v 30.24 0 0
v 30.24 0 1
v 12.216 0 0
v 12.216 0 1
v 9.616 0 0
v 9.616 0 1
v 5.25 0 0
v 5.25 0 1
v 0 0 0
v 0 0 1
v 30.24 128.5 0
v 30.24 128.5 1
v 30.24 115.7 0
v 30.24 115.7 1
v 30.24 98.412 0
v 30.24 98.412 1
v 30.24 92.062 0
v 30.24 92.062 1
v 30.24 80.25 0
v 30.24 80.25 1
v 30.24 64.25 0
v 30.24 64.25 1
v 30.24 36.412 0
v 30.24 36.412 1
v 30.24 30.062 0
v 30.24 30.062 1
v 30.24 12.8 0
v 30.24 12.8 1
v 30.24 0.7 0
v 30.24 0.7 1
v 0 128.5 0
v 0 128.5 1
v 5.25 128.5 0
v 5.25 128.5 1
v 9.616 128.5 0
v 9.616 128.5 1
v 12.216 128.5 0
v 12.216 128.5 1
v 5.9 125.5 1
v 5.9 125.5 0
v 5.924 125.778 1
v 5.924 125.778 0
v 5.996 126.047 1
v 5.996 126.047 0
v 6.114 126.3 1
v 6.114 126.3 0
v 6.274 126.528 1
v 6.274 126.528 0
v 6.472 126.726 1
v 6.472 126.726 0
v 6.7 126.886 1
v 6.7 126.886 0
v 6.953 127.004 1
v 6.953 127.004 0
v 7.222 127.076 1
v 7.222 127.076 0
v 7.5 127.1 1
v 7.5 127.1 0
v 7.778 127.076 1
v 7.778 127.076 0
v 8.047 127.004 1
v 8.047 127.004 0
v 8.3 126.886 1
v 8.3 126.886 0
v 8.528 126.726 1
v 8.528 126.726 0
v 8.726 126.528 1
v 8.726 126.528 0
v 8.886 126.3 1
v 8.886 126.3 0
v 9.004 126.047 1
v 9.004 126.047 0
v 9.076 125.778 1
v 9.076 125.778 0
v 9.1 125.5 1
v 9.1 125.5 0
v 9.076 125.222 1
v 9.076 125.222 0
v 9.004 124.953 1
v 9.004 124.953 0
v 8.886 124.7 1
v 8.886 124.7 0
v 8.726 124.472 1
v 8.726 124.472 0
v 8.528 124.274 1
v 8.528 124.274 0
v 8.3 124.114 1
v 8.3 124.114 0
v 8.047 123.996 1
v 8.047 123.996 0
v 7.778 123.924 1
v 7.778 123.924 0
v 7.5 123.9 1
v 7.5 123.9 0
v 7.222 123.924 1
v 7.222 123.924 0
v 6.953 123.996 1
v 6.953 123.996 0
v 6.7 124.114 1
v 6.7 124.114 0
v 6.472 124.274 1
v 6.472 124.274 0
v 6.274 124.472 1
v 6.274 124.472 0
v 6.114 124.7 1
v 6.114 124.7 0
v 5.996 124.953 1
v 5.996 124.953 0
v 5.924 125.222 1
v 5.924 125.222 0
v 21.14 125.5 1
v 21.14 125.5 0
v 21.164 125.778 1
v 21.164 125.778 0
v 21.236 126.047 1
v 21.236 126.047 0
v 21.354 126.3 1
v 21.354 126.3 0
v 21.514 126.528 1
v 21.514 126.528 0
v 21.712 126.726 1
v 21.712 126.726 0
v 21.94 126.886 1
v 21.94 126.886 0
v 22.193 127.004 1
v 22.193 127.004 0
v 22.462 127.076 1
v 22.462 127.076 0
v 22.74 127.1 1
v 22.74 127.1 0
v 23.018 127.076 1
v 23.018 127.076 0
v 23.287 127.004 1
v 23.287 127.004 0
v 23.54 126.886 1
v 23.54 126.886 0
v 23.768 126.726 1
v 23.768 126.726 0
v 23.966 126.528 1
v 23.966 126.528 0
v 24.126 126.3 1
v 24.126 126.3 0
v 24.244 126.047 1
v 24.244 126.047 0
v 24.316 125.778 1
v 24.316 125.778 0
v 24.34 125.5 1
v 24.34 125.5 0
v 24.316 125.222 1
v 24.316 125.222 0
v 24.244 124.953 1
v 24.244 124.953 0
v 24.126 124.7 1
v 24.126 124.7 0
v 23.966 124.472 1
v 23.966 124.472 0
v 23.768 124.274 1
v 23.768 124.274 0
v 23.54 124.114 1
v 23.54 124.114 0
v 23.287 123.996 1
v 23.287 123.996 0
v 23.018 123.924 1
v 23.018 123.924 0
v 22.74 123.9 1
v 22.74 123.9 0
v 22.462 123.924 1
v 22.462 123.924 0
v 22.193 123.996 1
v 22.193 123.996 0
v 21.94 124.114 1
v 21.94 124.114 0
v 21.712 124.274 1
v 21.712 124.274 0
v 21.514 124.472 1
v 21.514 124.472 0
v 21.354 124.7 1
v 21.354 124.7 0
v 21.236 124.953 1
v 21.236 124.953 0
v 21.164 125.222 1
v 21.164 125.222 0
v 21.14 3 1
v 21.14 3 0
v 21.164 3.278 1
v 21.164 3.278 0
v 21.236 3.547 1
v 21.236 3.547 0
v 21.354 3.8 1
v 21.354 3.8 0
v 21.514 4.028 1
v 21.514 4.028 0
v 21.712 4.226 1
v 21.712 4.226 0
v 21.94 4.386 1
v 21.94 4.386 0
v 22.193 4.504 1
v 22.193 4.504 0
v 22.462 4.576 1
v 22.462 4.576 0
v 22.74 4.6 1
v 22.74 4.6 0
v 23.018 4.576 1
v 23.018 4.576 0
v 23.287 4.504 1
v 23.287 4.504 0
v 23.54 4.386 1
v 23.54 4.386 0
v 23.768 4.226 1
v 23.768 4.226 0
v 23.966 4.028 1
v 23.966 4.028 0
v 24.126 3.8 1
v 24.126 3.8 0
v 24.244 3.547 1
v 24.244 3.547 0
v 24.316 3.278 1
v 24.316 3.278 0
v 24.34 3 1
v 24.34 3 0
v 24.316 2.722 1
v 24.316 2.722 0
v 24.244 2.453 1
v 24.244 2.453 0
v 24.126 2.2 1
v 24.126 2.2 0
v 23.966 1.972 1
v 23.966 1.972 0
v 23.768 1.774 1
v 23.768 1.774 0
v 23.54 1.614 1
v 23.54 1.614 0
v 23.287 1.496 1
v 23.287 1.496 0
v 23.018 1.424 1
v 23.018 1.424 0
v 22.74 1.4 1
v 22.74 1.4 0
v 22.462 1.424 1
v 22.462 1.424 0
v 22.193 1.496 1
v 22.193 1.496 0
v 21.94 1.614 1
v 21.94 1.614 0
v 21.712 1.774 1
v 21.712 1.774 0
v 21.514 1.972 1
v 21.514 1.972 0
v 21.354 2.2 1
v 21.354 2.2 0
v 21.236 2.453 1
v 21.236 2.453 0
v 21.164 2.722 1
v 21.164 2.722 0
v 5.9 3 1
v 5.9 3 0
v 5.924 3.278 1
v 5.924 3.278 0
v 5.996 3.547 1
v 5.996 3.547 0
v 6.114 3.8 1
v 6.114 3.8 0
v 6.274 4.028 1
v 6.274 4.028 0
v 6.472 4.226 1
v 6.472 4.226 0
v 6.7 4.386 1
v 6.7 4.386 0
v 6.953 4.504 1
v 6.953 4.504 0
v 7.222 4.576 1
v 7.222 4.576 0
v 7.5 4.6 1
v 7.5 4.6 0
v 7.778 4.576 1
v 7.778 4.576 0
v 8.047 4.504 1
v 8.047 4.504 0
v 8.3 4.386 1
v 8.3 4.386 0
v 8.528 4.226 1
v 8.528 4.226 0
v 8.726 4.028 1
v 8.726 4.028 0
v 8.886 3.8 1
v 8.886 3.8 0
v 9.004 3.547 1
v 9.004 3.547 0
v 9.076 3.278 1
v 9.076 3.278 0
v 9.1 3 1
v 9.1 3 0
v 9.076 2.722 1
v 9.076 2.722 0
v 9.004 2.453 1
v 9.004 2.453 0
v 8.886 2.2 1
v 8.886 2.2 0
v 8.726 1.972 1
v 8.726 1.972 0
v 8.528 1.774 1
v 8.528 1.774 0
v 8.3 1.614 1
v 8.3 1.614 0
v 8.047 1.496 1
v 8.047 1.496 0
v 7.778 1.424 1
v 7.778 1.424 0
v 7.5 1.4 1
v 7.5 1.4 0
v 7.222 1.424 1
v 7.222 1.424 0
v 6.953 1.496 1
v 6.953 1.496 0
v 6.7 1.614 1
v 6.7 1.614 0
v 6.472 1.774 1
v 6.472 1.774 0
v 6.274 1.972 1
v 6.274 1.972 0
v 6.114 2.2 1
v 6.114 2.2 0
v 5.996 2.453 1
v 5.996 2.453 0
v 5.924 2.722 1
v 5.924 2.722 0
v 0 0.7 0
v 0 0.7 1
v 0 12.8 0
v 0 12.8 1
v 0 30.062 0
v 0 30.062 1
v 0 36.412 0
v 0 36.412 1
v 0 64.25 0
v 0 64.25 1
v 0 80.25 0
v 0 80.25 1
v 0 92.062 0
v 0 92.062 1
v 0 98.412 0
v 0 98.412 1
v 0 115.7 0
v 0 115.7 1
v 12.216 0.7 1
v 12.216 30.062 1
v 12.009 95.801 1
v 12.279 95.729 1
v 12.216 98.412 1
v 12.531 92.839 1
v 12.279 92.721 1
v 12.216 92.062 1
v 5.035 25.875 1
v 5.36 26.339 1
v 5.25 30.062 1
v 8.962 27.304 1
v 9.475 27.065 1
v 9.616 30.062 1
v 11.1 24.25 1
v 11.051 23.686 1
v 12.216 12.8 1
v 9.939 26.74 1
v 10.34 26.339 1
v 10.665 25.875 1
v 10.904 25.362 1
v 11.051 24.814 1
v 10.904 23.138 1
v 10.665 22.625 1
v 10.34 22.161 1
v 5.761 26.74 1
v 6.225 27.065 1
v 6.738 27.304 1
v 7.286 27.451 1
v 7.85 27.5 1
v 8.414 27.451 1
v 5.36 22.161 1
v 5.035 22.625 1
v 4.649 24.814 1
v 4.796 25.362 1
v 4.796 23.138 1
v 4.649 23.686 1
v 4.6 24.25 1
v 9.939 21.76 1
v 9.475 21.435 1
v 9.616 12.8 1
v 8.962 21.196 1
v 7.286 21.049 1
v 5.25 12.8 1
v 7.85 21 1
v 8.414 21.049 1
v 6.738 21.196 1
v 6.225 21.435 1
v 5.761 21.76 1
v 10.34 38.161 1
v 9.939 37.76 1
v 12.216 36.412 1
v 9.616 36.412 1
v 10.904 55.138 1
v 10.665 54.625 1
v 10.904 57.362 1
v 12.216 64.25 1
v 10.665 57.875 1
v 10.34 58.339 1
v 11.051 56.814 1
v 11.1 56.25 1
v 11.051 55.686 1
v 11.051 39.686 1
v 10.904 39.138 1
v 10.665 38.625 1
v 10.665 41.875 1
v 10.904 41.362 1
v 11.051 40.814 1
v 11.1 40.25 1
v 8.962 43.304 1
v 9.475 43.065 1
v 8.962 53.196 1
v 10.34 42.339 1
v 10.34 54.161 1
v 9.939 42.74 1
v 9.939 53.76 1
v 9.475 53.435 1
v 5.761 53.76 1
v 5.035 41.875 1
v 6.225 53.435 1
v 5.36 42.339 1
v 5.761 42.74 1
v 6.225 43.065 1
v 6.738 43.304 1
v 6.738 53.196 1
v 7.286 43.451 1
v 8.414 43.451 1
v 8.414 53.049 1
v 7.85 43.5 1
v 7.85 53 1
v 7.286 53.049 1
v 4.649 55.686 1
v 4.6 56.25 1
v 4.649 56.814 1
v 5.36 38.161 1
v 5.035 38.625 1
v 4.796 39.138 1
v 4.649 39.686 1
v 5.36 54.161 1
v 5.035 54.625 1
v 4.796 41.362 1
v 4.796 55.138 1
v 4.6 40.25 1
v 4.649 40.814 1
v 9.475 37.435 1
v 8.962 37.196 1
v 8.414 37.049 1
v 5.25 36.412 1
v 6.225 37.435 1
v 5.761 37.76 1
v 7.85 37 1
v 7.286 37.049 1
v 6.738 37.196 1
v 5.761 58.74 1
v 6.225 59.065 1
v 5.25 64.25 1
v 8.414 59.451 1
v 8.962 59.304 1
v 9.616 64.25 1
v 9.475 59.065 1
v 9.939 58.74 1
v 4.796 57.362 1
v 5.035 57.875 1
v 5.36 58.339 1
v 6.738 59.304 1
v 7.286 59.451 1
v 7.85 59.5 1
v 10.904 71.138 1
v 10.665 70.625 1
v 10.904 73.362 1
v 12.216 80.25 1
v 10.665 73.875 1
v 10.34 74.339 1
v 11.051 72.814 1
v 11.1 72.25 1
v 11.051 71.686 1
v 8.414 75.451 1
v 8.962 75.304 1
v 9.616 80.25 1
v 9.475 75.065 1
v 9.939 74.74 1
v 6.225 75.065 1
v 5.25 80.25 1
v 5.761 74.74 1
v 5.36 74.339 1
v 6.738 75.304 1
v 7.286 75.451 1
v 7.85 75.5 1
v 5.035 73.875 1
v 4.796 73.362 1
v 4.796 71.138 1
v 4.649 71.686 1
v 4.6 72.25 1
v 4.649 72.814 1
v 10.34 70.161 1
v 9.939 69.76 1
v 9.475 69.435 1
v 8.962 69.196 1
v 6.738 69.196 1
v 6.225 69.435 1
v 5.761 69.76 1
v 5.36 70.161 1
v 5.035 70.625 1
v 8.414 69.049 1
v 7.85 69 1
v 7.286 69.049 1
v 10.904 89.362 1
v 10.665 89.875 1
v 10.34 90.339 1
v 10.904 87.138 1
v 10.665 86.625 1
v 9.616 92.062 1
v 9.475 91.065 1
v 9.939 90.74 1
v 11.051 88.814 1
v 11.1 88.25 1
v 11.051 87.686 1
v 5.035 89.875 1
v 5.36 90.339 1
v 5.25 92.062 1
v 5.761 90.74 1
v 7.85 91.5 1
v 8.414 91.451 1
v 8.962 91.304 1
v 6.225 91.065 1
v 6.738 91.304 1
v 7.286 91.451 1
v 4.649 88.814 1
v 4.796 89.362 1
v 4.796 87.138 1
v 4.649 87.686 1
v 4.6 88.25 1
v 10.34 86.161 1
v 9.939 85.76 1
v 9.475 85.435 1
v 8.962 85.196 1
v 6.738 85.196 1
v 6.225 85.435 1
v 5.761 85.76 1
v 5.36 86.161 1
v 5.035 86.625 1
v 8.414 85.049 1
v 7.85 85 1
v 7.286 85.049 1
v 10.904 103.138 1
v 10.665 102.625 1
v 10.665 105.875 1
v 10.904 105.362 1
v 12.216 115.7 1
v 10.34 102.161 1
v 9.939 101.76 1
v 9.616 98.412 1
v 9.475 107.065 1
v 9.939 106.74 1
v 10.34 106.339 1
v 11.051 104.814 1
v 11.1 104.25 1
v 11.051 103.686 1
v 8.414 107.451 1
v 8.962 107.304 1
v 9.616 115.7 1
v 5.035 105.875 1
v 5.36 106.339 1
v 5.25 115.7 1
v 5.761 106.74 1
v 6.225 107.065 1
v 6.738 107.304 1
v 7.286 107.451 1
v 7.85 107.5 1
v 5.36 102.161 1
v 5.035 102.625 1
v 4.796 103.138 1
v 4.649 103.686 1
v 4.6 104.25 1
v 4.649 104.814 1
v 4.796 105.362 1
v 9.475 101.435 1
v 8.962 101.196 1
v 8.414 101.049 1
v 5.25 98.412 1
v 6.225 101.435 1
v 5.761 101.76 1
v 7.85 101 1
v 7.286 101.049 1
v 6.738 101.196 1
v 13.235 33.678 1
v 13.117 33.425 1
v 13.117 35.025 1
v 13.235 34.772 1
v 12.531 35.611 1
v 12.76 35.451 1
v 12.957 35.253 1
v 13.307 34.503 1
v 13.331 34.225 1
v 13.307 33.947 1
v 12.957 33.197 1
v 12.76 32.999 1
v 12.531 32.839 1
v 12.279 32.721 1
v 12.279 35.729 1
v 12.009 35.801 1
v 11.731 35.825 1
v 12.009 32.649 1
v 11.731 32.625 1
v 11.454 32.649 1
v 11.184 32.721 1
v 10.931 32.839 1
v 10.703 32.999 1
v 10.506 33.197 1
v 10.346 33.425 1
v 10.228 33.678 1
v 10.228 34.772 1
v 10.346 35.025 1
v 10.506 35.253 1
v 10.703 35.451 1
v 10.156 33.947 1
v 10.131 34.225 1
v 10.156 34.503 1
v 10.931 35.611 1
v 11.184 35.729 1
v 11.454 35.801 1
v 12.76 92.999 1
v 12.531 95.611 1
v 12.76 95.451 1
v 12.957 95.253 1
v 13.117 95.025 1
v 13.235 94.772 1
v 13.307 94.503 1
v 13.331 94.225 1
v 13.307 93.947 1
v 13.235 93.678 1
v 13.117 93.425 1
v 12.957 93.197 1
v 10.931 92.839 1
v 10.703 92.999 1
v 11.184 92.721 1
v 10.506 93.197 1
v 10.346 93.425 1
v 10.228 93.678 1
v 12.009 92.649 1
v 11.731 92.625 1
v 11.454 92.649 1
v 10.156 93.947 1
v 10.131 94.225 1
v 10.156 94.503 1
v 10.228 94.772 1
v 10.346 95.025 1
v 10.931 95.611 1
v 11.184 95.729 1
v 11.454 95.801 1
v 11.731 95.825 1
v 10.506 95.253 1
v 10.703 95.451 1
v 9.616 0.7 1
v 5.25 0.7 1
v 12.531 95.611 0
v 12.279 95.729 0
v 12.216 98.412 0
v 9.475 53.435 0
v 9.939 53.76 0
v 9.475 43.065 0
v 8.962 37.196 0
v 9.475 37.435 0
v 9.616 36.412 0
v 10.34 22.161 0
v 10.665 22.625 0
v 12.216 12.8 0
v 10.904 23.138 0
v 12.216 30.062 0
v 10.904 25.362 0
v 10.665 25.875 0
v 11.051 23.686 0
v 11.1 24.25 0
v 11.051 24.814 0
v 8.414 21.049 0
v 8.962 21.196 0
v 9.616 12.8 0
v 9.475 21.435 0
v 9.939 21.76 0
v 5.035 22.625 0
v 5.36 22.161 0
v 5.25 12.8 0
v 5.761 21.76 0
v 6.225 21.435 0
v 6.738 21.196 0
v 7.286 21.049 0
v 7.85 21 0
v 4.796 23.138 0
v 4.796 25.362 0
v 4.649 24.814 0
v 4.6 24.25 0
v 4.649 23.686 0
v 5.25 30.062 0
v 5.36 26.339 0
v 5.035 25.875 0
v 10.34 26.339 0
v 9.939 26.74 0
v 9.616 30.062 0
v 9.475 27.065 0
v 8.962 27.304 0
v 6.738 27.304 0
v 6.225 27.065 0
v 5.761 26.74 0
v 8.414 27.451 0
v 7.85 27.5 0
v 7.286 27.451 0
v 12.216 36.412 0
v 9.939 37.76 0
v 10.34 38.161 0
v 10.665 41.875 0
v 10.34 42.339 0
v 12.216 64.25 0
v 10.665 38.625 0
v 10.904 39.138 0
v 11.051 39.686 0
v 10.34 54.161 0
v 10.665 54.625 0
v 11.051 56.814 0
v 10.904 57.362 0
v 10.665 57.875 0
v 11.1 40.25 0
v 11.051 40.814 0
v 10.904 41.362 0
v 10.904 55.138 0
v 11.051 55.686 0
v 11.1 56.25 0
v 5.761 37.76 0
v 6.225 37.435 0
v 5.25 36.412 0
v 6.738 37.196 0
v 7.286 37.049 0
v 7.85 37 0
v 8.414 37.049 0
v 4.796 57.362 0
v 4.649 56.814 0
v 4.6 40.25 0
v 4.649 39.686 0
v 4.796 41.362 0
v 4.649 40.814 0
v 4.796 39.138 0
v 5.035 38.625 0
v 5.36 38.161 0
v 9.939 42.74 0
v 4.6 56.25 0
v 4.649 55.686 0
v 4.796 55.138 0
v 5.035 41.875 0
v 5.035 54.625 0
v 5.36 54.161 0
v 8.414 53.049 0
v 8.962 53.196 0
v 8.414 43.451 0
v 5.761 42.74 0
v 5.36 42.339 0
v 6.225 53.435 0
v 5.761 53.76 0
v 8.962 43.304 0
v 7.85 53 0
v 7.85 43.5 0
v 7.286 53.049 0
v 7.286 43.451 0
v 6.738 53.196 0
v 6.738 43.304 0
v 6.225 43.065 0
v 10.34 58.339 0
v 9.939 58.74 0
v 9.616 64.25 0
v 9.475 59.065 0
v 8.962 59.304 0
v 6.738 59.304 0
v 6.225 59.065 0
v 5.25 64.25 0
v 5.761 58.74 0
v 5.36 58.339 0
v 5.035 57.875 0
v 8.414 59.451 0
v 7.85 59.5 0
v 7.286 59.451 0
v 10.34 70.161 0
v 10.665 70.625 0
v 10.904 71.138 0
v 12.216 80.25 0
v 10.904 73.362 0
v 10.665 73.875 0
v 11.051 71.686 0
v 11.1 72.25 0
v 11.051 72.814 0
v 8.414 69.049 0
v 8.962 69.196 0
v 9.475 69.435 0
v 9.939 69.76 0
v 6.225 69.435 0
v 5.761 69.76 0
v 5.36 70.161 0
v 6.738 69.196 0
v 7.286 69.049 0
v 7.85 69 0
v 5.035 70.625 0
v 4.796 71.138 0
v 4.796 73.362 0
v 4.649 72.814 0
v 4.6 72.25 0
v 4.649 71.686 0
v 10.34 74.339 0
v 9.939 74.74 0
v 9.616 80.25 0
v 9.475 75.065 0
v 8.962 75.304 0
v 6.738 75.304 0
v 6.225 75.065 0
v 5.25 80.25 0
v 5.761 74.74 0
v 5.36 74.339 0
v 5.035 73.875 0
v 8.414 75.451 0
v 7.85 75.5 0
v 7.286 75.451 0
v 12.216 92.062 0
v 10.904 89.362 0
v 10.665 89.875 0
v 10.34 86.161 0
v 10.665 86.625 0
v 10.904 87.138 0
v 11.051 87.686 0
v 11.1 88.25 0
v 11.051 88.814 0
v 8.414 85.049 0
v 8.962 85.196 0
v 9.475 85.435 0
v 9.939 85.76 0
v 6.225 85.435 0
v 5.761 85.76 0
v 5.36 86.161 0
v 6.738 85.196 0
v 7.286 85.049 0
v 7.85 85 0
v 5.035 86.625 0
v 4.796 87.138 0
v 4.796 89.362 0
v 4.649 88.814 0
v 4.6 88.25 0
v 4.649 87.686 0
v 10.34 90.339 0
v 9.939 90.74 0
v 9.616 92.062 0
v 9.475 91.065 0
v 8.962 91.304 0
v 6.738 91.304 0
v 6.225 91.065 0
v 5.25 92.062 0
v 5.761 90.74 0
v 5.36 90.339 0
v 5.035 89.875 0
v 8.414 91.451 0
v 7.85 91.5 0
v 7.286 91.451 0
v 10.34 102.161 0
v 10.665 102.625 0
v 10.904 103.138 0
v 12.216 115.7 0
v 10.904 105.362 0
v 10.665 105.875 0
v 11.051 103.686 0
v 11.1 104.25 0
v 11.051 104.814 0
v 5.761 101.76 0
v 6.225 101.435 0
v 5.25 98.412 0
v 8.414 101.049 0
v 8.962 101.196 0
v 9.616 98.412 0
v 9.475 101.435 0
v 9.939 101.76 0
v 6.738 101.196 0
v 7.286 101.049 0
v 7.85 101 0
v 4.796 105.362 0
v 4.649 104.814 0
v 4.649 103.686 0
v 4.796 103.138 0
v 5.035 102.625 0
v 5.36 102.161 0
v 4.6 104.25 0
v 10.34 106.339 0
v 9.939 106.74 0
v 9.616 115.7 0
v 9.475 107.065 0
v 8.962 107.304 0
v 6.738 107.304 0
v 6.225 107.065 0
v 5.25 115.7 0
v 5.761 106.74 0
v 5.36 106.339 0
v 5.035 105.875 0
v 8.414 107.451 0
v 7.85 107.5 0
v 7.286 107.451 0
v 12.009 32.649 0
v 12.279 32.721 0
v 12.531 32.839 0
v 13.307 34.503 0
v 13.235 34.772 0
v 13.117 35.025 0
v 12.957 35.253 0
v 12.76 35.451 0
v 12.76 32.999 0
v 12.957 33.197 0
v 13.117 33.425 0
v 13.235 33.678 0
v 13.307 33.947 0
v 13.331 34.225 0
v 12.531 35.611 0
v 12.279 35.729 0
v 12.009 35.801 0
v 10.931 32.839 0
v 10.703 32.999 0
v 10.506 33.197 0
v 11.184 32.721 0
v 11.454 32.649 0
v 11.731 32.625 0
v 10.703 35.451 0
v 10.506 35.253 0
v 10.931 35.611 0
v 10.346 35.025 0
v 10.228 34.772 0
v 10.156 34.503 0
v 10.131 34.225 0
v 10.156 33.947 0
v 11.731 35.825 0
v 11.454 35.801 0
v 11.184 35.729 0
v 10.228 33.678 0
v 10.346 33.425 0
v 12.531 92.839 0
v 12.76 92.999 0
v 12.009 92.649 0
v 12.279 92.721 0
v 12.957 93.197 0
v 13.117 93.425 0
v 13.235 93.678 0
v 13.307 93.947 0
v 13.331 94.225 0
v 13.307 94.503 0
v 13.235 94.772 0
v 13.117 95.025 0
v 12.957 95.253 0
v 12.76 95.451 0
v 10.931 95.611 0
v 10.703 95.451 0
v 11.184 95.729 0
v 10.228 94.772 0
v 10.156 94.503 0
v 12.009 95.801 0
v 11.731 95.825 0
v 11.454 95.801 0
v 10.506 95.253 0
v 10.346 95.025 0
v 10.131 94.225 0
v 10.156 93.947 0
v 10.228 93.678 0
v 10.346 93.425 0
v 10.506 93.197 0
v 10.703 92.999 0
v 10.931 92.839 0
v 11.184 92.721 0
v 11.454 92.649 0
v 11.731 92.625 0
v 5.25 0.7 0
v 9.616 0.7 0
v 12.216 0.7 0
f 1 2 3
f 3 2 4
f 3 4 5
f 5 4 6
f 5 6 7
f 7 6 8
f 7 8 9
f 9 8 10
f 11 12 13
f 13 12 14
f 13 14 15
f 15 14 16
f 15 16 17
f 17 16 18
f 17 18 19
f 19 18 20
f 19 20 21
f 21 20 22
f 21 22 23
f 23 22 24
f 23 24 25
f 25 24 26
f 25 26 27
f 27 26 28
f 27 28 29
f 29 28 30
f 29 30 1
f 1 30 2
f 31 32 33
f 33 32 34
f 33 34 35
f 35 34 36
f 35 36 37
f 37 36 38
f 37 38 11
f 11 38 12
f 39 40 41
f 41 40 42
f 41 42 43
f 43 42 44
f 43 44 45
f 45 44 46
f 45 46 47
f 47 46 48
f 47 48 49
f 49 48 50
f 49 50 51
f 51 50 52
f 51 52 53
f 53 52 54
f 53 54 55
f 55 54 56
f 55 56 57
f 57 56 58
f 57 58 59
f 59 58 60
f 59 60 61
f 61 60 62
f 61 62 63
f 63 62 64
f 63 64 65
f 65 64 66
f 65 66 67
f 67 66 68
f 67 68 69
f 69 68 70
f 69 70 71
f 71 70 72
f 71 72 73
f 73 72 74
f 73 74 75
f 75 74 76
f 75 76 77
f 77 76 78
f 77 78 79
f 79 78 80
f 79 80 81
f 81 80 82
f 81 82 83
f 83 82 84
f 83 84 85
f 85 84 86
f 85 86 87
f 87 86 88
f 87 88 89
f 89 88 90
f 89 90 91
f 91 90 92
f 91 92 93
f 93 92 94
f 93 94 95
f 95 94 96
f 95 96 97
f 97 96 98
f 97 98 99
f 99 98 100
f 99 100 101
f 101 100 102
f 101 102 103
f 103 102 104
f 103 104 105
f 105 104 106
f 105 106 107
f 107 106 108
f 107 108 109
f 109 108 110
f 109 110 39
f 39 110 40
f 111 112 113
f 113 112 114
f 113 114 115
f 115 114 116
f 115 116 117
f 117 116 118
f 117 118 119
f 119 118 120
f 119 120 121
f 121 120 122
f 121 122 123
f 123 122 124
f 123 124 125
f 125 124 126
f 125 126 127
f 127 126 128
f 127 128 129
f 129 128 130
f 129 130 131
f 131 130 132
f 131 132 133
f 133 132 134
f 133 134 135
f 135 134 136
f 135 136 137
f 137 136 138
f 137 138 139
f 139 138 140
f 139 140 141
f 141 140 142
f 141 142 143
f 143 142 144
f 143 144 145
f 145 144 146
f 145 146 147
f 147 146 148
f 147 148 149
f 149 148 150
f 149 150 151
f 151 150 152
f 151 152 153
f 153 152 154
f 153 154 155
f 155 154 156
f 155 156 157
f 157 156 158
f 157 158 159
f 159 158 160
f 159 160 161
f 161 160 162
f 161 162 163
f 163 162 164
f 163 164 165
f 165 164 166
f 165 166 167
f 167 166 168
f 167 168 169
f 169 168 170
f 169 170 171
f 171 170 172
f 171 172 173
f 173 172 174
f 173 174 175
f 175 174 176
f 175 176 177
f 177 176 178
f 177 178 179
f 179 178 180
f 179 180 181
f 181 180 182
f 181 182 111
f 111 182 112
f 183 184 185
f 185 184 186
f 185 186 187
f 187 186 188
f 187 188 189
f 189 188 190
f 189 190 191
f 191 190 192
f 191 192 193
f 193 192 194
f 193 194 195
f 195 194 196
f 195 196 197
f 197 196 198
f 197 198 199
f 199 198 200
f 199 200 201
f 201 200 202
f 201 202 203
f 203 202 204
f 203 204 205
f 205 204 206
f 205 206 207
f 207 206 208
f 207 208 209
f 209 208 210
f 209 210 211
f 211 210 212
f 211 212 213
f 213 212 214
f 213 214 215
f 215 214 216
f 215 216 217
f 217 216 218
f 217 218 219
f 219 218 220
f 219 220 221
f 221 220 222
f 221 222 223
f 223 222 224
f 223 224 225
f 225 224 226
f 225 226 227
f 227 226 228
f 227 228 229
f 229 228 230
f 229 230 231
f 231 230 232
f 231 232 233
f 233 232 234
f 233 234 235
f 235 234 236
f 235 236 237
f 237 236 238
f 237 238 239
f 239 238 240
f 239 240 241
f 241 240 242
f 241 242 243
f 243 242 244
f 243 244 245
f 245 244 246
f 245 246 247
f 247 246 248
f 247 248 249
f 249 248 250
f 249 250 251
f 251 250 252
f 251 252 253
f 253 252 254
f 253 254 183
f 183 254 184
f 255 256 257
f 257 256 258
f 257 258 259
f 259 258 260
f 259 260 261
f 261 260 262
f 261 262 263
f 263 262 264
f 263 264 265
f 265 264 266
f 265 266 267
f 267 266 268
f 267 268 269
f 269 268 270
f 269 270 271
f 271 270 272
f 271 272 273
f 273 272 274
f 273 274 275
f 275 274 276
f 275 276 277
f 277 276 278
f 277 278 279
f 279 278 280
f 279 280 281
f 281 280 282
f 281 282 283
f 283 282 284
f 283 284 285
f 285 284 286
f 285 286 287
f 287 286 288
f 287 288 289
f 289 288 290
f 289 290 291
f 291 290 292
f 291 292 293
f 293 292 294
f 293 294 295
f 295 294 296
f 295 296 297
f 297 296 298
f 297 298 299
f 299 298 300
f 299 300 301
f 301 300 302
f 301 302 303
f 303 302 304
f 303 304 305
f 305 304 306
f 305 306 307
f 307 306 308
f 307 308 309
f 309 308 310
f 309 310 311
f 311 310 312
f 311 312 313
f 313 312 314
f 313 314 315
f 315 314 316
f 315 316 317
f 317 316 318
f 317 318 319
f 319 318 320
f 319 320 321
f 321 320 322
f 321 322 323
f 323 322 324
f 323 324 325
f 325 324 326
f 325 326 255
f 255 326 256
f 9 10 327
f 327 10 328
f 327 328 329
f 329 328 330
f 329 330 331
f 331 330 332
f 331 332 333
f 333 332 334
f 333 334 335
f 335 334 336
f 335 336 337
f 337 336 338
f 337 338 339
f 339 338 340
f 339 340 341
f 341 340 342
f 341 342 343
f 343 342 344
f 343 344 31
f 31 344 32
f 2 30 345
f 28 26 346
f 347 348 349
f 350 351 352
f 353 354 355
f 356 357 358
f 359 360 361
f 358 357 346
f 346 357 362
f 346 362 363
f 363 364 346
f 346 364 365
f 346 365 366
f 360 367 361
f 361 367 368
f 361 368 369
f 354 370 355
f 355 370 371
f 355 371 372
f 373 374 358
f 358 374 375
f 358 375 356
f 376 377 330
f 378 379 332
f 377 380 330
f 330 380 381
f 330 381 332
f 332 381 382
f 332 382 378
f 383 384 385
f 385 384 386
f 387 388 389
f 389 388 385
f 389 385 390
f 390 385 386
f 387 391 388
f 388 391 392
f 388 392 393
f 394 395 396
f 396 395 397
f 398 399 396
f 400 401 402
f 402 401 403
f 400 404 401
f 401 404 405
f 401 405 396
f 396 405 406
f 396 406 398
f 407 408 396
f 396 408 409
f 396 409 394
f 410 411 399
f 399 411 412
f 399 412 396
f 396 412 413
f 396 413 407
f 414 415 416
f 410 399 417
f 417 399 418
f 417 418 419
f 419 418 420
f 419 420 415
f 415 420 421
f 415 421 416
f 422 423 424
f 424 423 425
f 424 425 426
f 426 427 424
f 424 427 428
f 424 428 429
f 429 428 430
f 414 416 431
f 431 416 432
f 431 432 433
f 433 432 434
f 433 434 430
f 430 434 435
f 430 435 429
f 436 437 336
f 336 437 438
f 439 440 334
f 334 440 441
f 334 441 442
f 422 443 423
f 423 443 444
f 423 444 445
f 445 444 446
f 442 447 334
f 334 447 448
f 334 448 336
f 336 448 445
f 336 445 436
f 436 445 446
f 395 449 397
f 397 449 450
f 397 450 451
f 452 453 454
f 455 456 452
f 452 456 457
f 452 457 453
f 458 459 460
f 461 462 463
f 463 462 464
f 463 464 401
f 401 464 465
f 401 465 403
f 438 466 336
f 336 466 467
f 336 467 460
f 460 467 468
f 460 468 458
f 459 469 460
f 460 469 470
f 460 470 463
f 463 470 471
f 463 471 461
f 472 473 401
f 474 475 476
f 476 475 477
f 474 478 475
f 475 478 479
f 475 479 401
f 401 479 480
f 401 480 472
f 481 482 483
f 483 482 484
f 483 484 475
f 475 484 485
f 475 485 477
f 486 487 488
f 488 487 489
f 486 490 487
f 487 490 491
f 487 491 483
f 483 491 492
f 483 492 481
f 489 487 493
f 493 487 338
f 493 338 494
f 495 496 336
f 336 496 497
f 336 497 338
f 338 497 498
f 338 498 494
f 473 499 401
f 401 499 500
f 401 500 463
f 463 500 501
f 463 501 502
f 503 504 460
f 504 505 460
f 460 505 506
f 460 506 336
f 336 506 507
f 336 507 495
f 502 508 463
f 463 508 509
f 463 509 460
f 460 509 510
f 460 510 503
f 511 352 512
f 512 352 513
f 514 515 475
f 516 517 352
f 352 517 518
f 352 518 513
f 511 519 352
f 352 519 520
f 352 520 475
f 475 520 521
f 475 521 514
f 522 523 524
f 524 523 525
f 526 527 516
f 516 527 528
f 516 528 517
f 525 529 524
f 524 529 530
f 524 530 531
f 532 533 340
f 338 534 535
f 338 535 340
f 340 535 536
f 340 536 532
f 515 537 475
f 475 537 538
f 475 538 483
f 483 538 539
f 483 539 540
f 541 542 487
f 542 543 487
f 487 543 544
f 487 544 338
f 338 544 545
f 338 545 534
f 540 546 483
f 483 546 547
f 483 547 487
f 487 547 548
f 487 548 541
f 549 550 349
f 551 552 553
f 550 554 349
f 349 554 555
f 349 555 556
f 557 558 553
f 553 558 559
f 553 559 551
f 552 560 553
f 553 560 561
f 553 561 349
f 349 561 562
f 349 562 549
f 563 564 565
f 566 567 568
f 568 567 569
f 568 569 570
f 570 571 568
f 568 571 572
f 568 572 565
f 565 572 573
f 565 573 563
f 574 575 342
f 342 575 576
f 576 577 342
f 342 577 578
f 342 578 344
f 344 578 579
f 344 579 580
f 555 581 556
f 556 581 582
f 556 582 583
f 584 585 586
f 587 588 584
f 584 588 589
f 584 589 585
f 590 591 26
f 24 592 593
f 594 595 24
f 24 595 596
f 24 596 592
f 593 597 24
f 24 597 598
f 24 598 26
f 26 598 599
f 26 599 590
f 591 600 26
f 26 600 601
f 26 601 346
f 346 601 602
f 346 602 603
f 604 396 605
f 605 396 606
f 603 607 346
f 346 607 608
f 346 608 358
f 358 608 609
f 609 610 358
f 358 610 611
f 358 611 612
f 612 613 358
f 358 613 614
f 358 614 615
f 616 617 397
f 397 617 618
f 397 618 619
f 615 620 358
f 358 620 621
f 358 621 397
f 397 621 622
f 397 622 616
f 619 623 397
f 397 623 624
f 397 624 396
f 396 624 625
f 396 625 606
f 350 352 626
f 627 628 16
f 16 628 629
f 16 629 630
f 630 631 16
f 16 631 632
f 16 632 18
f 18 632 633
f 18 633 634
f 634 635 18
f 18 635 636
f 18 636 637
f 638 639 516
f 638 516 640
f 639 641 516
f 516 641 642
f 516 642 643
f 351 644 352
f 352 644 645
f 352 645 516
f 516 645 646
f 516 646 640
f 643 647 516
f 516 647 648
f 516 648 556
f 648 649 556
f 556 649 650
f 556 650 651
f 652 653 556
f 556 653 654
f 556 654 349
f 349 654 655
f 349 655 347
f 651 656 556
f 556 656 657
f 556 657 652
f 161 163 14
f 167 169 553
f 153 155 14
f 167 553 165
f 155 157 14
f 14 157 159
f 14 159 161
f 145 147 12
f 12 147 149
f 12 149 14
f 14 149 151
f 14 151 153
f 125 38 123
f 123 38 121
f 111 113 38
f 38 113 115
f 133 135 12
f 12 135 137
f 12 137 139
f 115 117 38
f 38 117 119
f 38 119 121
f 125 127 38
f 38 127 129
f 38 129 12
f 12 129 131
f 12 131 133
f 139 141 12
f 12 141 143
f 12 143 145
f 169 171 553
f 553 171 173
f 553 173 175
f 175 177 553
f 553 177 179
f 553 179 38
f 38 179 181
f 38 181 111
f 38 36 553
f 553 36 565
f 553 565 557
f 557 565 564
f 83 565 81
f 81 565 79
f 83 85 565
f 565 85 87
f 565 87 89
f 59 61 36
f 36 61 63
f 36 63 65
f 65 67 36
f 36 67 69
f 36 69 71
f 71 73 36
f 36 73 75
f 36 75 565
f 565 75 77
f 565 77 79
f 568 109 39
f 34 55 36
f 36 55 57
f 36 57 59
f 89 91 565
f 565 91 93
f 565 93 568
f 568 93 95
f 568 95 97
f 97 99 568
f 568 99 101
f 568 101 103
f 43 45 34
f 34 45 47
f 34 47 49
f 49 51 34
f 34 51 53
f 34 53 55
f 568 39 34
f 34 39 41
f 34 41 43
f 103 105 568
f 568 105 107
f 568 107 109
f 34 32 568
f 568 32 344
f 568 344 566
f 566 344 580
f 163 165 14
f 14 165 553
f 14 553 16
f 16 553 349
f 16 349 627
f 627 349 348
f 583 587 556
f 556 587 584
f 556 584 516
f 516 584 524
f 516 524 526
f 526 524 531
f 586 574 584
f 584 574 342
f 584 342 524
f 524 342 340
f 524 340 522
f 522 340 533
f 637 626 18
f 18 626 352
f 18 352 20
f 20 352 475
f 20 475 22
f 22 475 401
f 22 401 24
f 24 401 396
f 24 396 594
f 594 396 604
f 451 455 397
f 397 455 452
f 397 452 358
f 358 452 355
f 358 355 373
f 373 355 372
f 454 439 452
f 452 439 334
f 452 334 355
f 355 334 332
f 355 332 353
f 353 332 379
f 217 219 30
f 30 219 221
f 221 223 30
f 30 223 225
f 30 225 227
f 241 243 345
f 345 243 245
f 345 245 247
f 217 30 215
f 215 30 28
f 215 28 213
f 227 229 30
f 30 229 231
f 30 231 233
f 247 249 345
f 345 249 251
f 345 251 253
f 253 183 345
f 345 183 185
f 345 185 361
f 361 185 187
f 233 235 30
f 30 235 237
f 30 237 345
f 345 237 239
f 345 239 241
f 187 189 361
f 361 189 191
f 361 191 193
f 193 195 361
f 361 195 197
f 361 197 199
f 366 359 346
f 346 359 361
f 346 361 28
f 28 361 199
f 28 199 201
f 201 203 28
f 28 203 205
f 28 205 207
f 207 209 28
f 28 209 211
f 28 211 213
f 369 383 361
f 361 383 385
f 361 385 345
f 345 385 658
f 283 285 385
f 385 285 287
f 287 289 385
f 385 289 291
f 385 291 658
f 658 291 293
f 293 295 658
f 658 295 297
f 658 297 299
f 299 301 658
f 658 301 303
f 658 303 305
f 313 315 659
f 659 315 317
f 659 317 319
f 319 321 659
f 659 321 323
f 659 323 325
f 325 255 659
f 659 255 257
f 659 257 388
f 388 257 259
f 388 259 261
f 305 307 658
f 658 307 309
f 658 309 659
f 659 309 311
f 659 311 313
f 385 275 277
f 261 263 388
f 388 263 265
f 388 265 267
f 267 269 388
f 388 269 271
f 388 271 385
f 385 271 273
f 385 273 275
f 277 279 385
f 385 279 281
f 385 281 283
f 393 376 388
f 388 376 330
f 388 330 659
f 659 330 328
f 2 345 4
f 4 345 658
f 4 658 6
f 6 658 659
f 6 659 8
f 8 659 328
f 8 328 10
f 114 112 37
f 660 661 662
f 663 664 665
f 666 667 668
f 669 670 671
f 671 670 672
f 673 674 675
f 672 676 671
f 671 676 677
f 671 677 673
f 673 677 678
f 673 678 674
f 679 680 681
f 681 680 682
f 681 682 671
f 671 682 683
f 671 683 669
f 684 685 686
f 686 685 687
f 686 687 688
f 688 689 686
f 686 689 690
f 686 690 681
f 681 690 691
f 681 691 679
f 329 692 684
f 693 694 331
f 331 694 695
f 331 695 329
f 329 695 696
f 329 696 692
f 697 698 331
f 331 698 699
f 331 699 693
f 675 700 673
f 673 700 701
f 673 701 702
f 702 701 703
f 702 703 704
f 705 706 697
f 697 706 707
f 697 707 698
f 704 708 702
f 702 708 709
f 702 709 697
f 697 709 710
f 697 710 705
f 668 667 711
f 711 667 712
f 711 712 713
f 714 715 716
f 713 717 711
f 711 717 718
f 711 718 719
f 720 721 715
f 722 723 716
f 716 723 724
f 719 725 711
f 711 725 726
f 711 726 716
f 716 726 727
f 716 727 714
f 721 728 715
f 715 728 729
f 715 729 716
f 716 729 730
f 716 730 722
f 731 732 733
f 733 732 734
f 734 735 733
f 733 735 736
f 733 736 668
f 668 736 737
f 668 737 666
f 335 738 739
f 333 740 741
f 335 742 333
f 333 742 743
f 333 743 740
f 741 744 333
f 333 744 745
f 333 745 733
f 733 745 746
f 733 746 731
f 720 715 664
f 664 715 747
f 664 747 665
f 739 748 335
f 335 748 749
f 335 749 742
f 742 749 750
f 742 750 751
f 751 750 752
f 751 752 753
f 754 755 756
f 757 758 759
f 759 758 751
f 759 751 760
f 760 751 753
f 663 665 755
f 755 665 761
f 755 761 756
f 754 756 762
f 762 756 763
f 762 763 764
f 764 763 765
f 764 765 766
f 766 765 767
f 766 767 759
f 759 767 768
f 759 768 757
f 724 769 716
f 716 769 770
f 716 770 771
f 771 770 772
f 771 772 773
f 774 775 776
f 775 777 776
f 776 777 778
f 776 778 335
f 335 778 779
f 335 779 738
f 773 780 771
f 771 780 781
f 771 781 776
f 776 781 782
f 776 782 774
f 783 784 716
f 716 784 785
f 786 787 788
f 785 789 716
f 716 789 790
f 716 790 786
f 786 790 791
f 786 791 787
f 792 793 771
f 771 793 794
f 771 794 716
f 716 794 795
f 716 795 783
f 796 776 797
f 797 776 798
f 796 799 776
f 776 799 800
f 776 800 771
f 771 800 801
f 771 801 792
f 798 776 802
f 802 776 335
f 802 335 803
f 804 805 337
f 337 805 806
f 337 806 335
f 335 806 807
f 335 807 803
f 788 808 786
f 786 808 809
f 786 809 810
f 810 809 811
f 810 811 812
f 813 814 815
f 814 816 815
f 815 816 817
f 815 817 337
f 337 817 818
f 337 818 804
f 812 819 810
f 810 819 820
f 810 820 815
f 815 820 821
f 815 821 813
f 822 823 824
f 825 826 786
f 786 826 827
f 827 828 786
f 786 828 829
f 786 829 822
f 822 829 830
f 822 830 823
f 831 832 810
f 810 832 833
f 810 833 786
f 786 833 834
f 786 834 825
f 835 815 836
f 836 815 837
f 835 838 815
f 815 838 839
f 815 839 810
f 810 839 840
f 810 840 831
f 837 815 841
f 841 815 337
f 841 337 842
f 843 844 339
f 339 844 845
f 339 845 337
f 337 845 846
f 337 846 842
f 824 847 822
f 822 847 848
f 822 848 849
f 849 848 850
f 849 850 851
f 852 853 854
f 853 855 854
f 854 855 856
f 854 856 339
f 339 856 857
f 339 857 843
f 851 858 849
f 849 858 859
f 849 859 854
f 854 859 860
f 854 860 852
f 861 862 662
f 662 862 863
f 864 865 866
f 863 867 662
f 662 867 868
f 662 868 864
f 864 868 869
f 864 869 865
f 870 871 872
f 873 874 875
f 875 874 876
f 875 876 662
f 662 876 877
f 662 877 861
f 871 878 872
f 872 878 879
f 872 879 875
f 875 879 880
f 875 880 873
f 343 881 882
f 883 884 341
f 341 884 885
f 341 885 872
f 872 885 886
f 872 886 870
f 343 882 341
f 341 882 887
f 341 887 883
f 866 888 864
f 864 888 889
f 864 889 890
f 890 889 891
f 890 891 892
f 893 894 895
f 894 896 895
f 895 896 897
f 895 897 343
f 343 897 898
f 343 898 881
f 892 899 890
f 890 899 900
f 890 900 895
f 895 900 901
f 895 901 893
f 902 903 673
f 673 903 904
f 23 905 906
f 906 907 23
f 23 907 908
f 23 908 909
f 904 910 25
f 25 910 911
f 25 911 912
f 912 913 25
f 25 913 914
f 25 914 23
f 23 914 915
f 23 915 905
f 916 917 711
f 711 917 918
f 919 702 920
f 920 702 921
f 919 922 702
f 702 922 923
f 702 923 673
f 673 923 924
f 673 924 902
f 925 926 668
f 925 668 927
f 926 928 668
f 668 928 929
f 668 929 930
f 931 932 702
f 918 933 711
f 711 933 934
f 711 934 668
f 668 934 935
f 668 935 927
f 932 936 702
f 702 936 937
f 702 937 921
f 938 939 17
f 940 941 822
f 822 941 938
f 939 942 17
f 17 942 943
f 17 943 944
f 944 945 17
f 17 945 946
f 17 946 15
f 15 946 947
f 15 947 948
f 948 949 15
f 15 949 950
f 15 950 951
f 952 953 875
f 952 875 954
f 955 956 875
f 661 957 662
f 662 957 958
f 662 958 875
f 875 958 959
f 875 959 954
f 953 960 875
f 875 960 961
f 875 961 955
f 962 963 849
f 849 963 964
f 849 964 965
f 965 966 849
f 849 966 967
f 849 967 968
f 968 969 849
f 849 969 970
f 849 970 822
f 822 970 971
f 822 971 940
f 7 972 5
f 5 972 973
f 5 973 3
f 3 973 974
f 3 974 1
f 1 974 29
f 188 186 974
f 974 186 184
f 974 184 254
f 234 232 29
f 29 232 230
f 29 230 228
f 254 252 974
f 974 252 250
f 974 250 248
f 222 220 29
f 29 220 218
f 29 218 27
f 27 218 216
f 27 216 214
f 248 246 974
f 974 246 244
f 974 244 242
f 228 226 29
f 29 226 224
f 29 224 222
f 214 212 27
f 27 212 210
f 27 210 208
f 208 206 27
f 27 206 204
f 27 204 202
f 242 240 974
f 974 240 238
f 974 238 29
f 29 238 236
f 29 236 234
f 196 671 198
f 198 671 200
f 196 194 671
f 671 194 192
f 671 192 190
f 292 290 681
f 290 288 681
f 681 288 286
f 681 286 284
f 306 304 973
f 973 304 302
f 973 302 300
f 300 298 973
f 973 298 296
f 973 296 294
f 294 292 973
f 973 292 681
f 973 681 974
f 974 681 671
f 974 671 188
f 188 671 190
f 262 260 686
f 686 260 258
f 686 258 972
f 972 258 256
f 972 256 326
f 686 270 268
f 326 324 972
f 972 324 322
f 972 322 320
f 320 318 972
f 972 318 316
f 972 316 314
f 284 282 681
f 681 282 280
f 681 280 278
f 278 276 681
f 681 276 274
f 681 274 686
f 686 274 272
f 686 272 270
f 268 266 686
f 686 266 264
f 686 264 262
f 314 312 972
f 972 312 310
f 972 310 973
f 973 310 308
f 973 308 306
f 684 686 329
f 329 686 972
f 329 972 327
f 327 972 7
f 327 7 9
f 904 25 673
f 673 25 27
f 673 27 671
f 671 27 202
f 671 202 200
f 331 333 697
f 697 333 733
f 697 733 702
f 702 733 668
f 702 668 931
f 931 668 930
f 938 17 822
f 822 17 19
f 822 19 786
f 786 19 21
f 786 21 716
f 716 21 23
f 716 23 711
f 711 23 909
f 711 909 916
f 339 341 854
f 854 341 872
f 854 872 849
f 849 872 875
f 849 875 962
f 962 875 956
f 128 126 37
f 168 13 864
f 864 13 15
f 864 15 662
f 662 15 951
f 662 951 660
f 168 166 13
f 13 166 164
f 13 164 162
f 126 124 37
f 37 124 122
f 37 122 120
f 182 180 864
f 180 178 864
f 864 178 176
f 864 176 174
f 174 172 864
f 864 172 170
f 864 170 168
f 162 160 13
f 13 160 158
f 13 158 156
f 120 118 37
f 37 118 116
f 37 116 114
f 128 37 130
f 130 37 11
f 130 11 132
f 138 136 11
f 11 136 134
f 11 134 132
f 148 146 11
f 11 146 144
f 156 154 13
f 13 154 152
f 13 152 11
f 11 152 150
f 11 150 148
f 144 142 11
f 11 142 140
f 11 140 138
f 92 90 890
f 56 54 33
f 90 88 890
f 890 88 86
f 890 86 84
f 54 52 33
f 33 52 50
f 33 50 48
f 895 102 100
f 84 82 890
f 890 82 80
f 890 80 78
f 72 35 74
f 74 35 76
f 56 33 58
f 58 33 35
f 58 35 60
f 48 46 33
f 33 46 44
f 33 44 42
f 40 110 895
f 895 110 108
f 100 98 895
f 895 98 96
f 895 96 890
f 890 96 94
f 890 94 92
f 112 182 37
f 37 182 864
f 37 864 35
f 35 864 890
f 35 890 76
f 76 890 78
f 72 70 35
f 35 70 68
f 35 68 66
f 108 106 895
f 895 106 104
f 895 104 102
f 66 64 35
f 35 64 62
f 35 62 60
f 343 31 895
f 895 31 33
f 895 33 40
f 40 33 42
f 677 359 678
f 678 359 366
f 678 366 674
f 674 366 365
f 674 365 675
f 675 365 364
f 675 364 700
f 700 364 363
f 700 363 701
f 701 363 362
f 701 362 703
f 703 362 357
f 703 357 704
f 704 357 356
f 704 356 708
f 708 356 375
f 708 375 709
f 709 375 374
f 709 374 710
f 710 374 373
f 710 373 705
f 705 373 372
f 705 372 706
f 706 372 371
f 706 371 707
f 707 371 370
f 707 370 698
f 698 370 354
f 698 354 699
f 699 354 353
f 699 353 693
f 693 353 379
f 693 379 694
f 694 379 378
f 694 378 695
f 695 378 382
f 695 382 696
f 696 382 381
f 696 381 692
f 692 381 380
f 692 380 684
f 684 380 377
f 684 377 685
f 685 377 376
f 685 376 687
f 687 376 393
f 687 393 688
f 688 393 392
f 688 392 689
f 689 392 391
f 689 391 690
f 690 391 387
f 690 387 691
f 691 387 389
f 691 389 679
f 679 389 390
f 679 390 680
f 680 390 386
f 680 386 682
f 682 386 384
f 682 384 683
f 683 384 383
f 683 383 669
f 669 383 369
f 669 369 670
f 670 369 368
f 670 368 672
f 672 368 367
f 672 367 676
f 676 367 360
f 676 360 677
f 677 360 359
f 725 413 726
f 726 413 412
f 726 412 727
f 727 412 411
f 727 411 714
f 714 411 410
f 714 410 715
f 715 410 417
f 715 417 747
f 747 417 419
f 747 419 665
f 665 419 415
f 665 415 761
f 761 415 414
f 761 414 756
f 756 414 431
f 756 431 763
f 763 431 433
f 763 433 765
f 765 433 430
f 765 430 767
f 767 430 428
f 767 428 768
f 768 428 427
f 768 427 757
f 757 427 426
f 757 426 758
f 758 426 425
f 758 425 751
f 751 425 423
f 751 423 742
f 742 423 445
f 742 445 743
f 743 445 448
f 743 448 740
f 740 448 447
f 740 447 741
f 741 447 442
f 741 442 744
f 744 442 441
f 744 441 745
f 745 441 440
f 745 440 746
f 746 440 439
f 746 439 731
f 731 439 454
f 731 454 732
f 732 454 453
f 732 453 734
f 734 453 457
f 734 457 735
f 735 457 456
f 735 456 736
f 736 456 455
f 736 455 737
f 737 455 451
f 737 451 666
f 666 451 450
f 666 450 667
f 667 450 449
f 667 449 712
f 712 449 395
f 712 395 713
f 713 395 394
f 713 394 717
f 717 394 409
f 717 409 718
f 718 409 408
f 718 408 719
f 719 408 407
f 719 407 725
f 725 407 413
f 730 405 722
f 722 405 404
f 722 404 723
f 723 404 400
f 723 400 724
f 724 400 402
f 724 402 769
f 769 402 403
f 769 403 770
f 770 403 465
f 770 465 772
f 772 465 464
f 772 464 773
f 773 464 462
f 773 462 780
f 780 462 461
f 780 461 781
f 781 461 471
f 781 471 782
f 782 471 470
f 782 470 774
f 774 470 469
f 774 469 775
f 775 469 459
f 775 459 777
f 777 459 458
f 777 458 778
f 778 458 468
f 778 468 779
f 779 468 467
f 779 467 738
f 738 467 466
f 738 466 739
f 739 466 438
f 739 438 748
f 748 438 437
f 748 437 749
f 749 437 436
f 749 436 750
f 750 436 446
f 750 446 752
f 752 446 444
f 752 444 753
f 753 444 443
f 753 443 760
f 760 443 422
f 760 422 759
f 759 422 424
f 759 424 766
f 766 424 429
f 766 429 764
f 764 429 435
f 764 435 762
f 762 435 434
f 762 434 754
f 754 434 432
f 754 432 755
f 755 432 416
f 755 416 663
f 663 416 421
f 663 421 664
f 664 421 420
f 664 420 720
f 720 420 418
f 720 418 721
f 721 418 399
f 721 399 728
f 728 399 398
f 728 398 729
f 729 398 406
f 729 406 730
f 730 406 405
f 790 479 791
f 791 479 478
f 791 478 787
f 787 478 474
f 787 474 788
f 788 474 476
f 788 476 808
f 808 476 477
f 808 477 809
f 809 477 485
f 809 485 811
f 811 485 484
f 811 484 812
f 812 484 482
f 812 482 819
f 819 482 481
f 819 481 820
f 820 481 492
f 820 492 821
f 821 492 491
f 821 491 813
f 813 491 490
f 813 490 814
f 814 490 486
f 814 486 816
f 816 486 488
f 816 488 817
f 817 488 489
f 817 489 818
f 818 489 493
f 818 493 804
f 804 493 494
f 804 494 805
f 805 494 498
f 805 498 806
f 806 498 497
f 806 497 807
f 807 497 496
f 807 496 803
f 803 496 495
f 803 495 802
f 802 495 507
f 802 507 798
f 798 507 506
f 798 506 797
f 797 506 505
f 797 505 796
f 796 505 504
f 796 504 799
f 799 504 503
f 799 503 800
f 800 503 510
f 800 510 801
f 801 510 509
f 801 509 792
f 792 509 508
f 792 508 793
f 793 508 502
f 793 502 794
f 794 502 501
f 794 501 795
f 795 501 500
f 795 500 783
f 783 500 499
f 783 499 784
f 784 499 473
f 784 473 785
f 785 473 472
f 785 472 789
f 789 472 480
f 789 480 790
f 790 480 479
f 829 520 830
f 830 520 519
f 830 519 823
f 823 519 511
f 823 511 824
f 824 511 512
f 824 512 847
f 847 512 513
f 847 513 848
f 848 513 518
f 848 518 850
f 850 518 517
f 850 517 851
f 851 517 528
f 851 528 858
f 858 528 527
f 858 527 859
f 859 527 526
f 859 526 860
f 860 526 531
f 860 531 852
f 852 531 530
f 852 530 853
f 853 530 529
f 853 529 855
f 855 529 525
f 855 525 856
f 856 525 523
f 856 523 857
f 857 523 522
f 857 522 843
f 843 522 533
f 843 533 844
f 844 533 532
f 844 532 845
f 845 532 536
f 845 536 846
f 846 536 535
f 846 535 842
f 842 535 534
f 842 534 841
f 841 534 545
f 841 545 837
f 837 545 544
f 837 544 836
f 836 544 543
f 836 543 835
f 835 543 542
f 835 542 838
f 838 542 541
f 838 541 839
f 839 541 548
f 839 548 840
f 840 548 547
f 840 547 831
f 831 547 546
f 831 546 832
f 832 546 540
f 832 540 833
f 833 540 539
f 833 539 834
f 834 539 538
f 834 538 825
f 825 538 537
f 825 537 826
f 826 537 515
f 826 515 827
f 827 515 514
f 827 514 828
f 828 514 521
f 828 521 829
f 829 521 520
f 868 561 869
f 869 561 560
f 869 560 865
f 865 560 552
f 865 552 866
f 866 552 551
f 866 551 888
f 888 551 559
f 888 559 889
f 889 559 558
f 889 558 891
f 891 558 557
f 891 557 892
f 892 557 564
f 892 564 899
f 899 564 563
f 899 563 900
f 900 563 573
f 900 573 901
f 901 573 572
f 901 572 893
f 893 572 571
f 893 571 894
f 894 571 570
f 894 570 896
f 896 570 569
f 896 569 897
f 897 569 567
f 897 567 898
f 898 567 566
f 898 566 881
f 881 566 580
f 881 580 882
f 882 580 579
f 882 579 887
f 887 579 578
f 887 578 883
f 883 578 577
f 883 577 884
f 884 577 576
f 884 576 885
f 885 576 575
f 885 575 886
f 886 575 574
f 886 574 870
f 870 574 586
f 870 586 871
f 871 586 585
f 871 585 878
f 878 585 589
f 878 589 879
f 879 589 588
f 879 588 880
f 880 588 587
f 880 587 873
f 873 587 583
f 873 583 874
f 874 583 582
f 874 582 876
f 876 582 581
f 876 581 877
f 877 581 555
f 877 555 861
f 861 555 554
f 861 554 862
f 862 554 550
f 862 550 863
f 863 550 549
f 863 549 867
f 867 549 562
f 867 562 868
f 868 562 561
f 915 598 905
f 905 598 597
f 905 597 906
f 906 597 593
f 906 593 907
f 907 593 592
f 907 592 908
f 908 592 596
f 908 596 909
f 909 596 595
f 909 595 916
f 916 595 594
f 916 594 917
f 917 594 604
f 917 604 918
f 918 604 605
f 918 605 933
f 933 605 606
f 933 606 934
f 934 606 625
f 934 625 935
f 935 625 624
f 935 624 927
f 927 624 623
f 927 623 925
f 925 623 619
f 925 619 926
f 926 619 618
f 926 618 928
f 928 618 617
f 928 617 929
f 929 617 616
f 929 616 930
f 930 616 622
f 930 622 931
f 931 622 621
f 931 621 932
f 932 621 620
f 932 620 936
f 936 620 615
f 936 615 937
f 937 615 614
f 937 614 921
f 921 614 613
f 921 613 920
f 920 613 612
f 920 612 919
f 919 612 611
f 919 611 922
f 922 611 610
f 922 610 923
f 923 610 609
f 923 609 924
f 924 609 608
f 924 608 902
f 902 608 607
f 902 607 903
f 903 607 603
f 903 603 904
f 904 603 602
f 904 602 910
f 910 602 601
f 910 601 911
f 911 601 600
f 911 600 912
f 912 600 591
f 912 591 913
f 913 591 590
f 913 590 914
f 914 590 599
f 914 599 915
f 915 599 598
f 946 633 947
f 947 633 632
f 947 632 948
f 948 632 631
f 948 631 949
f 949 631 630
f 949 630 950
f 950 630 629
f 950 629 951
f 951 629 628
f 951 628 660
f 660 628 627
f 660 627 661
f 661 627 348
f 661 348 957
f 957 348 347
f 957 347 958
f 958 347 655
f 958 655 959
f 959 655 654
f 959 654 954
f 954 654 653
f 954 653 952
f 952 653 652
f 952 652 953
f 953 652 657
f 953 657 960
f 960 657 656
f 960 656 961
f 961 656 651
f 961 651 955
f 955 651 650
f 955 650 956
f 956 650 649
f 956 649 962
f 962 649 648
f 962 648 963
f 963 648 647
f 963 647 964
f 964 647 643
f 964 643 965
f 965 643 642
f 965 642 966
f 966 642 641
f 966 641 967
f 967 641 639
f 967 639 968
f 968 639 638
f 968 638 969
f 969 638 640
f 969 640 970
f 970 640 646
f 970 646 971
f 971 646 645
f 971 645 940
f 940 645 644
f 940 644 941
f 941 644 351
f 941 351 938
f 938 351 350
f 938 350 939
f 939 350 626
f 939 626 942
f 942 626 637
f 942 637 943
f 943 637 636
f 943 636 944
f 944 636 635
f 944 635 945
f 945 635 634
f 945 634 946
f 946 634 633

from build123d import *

# Parameters (mm, degrees)
SKETCH2_W                        = 30.24
SKETCH2_H                        = 128.5
SKETCH2_R                        = 1.6
BOSS_EXTRUDE1_DEPTH              = 1
SMA_CUTS_DEPTH                   = 133.014043192
SMA_CUTS_DEPTH_BACK              = 133.014043192
SKETCH3_R                        = 3.25
MOUNTING_BRACKET_CUTS_DEPTH      = 133.014043192
MOUNTING_BRACKET_CUTS_DEPTH_BACK = 133.014043192
SKETCH4_R                        = 1.6


with BuildPart() as part:
    # Sketch2 → Boss-Extrude1 (new body)
    with BuildSketch(Plane.XY):
        with Locations((15.12, 64.25)):
            Rectangle(SKETCH2_W, SKETCH2_H)
        with Locations((7.5, 3)):
            Circle(SKETCH2_R, mode=Mode.SUBTRACT)
        with Locations((22.74, 3)):
            Circle(SKETCH2_R, mode=Mode.SUBTRACT)
        with Locations((22.74, 125.5)):
            Circle(SKETCH2_R, mode=Mode.SUBTRACT)
        with Locations((7.5, 125.5)):
            Circle(SKETCH2_R, mode=Mode.SUBTRACT)
    extrude(amount=BOSS_EXTRUDE1_DEPTH)

    # Sketch3 → sma_cuts (cut, two sides: drawn at the far end of the back side and taken through both)
    with BuildSketch(Plane.XY.offset(1).offset(-SMA_CUTS_DEPTH_BACK)):
        with Locations((7.85, 104.25)):
            Circle(SKETCH3_R)
        with Locations((7.85, 88.25)):
            Circle(SKETCH3_R)
        with Locations((7.85, 72.25)):
            Circle(SKETCH3_R)
        with Locations((7.85, 56.25)):
            Circle(SKETCH3_R)
        with Locations((7.85, 40.25)):
            Circle(SKETCH3_R)
        with Locations((7.85, 24.25)):
            Circle(SKETCH3_R)
    extrude(amount=SMA_CUTS_DEPTH + SMA_CUTS_DEPTH_BACK, mode=Mode.SUBTRACT)

    # Sketch4 → mounting_bracket_cuts (cut, two sides: drawn at the far end of the back side and taken through both)
    with BuildSketch(Plane.XY.offset(1).offset(-MOUNTING_BRACKET_CUTS_DEPTH_BACK)):
        with Locations((11.7314, 94.225)):
            Circle(SKETCH4_R)
        with Locations((11.7314, 34.225)):
            Circle(SKETCH4_R)
    extrude(amount=MOUNTING_BRACKET_CUTS_DEPTH + MOUNTING_BRACKET_CUTS_DEPTH_BACK, mode=Mode.SUBTRACT)


solid = part.part
